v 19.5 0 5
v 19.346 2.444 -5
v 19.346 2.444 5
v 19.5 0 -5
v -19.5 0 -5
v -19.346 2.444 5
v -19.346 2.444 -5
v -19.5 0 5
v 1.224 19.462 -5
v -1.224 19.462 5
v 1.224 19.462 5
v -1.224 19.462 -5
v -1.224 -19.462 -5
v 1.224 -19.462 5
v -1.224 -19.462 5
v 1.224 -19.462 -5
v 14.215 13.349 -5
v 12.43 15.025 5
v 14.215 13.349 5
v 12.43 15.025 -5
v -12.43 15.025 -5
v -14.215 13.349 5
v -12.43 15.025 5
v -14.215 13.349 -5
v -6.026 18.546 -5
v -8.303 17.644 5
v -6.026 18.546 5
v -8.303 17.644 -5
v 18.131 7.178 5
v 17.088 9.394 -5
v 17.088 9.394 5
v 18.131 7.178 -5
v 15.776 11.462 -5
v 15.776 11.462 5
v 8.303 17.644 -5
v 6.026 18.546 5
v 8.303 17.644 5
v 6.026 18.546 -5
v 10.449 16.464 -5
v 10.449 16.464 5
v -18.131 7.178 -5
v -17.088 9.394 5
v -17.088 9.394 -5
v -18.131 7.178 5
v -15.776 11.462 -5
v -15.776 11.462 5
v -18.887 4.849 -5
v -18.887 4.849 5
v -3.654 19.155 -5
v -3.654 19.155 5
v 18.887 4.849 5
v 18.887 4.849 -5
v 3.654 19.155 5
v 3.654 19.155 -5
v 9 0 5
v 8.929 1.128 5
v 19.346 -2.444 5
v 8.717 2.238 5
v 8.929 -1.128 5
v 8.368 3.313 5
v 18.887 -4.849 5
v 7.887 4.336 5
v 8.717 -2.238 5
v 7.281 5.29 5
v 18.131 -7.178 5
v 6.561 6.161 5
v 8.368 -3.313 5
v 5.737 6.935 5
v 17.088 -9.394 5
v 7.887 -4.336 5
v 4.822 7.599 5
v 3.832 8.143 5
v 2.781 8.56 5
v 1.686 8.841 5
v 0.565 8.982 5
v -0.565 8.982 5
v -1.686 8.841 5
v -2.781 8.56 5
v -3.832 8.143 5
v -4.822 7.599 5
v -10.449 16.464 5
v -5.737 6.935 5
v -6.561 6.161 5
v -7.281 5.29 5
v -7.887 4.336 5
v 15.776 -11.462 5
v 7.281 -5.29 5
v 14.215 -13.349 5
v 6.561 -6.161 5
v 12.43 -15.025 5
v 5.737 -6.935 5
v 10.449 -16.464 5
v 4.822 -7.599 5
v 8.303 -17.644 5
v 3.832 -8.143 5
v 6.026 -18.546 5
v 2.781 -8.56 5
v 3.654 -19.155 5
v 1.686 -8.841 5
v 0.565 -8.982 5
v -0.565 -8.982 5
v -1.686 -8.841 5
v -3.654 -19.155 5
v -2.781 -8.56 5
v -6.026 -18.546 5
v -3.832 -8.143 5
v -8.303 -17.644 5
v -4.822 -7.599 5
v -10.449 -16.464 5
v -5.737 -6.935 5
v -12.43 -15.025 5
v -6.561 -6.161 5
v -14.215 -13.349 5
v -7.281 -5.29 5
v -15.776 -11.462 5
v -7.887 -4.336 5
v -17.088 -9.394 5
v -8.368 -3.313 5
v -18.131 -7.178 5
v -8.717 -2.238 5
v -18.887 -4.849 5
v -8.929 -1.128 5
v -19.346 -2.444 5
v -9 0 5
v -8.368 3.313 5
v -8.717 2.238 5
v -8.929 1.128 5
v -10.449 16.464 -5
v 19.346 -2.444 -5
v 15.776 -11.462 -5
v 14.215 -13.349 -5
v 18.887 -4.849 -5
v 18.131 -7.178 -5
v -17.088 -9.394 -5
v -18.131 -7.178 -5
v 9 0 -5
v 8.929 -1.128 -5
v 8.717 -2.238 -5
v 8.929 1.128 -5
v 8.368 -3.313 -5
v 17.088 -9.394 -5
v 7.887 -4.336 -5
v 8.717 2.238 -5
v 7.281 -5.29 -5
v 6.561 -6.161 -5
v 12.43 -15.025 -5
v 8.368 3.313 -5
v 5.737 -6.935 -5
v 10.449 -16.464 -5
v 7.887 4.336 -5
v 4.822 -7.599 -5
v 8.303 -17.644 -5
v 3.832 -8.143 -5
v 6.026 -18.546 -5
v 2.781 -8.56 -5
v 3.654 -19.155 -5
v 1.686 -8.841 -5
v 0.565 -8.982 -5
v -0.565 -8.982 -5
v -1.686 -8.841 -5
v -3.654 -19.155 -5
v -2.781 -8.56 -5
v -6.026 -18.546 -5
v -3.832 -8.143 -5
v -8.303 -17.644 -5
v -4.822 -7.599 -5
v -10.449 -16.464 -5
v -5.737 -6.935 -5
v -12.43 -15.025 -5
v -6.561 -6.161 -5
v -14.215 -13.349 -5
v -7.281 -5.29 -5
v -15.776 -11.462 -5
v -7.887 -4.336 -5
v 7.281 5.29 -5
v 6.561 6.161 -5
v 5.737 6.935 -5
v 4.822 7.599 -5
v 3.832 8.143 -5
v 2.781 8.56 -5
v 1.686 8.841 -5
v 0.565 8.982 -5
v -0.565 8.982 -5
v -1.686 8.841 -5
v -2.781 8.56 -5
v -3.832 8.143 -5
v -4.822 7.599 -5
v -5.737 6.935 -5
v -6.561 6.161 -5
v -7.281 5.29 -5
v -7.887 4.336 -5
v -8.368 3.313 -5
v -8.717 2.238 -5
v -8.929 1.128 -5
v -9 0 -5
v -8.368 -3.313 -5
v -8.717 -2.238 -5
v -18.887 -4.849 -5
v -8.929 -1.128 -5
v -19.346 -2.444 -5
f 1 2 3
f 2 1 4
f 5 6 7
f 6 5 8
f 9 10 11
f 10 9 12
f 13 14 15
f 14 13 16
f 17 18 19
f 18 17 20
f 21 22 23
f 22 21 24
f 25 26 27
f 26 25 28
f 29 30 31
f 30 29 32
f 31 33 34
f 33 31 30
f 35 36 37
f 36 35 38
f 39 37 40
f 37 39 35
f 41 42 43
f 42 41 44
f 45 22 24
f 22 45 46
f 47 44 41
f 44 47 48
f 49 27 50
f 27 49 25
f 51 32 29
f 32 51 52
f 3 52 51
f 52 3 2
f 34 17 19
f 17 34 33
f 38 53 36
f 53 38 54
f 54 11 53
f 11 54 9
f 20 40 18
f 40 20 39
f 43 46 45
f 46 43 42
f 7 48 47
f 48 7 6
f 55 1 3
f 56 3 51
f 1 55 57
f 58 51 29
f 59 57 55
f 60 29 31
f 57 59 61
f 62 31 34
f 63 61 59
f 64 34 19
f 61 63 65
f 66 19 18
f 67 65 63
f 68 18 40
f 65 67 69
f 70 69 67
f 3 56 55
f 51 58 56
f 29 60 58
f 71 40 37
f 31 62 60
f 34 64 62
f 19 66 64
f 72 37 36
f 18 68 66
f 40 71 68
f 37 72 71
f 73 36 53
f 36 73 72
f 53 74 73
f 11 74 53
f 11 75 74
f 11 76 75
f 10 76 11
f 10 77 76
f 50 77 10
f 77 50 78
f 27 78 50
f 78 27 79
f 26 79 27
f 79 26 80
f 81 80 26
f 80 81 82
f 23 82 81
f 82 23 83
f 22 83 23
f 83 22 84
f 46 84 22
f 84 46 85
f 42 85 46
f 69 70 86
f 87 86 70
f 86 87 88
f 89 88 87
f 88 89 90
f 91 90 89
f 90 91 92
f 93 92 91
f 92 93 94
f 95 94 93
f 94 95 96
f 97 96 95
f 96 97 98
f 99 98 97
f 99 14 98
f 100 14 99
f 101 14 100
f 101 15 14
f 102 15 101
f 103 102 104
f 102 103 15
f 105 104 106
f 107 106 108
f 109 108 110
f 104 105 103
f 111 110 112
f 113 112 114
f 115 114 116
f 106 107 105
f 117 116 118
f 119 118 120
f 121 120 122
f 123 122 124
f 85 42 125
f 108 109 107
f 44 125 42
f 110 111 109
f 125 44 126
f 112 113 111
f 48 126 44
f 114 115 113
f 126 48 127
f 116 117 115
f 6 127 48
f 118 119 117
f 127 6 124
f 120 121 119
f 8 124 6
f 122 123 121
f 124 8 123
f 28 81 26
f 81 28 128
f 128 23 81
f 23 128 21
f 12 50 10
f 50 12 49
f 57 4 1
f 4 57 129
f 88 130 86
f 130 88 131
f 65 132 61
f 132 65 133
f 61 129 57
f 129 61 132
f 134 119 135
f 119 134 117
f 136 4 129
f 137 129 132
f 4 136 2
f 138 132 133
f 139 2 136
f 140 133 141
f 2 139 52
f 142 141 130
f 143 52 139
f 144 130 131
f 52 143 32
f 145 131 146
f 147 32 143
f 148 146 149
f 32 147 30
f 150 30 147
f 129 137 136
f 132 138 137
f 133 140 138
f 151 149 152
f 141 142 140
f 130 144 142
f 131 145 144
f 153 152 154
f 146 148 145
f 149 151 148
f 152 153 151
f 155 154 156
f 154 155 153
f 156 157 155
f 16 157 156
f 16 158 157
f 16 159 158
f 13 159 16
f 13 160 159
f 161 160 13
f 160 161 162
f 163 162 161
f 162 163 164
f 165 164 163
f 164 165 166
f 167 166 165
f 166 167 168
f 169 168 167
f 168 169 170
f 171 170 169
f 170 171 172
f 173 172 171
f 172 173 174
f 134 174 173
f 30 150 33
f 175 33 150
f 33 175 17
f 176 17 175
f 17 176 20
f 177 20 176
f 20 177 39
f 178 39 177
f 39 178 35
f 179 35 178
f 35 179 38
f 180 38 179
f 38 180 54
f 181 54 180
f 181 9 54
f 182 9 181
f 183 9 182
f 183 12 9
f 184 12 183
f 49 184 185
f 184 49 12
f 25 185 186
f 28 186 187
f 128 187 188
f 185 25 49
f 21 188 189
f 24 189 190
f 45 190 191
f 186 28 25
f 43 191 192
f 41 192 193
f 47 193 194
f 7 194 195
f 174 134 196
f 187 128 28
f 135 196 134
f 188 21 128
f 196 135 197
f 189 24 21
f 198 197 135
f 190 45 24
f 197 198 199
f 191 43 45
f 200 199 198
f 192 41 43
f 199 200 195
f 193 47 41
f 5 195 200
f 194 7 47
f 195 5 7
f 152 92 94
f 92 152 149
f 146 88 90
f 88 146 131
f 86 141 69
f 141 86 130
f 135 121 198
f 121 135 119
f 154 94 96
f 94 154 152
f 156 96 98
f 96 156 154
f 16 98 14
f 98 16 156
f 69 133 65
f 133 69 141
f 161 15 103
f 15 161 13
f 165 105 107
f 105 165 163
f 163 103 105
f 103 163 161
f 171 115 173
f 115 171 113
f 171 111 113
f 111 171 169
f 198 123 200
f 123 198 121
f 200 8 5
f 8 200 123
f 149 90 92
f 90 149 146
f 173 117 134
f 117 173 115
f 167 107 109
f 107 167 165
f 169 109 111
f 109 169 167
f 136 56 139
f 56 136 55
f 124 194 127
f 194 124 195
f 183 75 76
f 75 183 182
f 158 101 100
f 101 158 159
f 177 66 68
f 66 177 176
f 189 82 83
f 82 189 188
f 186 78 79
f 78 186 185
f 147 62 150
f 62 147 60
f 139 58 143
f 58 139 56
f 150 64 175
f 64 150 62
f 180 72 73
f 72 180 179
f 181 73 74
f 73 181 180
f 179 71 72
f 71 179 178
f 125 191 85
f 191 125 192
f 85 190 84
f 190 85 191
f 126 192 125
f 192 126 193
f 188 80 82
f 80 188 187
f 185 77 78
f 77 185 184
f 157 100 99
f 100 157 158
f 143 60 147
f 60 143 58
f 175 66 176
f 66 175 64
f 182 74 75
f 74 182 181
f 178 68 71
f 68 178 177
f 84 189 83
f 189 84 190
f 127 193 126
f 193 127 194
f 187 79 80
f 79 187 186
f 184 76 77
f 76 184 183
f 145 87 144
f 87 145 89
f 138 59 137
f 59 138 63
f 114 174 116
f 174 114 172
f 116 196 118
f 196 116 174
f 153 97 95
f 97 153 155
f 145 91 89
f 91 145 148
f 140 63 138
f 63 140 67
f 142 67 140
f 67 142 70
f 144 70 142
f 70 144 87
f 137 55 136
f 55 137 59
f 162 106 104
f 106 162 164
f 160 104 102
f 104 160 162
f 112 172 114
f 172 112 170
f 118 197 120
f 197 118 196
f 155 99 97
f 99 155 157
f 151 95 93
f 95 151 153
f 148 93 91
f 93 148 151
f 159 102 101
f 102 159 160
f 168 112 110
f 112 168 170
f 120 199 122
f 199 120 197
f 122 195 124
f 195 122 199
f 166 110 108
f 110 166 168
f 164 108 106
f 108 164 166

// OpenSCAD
$fn = 50;


difference() {
	union() {
		translate(v = [0, 0, -5.0000000000]) {
			cylinder(h = 10, r = 19.5000000000);
		}
	}
	union() {
		translate(v = [0, 0, -100.0000000000]) {
			cylinder(h = 200, r = 9);
		}
	}
}
